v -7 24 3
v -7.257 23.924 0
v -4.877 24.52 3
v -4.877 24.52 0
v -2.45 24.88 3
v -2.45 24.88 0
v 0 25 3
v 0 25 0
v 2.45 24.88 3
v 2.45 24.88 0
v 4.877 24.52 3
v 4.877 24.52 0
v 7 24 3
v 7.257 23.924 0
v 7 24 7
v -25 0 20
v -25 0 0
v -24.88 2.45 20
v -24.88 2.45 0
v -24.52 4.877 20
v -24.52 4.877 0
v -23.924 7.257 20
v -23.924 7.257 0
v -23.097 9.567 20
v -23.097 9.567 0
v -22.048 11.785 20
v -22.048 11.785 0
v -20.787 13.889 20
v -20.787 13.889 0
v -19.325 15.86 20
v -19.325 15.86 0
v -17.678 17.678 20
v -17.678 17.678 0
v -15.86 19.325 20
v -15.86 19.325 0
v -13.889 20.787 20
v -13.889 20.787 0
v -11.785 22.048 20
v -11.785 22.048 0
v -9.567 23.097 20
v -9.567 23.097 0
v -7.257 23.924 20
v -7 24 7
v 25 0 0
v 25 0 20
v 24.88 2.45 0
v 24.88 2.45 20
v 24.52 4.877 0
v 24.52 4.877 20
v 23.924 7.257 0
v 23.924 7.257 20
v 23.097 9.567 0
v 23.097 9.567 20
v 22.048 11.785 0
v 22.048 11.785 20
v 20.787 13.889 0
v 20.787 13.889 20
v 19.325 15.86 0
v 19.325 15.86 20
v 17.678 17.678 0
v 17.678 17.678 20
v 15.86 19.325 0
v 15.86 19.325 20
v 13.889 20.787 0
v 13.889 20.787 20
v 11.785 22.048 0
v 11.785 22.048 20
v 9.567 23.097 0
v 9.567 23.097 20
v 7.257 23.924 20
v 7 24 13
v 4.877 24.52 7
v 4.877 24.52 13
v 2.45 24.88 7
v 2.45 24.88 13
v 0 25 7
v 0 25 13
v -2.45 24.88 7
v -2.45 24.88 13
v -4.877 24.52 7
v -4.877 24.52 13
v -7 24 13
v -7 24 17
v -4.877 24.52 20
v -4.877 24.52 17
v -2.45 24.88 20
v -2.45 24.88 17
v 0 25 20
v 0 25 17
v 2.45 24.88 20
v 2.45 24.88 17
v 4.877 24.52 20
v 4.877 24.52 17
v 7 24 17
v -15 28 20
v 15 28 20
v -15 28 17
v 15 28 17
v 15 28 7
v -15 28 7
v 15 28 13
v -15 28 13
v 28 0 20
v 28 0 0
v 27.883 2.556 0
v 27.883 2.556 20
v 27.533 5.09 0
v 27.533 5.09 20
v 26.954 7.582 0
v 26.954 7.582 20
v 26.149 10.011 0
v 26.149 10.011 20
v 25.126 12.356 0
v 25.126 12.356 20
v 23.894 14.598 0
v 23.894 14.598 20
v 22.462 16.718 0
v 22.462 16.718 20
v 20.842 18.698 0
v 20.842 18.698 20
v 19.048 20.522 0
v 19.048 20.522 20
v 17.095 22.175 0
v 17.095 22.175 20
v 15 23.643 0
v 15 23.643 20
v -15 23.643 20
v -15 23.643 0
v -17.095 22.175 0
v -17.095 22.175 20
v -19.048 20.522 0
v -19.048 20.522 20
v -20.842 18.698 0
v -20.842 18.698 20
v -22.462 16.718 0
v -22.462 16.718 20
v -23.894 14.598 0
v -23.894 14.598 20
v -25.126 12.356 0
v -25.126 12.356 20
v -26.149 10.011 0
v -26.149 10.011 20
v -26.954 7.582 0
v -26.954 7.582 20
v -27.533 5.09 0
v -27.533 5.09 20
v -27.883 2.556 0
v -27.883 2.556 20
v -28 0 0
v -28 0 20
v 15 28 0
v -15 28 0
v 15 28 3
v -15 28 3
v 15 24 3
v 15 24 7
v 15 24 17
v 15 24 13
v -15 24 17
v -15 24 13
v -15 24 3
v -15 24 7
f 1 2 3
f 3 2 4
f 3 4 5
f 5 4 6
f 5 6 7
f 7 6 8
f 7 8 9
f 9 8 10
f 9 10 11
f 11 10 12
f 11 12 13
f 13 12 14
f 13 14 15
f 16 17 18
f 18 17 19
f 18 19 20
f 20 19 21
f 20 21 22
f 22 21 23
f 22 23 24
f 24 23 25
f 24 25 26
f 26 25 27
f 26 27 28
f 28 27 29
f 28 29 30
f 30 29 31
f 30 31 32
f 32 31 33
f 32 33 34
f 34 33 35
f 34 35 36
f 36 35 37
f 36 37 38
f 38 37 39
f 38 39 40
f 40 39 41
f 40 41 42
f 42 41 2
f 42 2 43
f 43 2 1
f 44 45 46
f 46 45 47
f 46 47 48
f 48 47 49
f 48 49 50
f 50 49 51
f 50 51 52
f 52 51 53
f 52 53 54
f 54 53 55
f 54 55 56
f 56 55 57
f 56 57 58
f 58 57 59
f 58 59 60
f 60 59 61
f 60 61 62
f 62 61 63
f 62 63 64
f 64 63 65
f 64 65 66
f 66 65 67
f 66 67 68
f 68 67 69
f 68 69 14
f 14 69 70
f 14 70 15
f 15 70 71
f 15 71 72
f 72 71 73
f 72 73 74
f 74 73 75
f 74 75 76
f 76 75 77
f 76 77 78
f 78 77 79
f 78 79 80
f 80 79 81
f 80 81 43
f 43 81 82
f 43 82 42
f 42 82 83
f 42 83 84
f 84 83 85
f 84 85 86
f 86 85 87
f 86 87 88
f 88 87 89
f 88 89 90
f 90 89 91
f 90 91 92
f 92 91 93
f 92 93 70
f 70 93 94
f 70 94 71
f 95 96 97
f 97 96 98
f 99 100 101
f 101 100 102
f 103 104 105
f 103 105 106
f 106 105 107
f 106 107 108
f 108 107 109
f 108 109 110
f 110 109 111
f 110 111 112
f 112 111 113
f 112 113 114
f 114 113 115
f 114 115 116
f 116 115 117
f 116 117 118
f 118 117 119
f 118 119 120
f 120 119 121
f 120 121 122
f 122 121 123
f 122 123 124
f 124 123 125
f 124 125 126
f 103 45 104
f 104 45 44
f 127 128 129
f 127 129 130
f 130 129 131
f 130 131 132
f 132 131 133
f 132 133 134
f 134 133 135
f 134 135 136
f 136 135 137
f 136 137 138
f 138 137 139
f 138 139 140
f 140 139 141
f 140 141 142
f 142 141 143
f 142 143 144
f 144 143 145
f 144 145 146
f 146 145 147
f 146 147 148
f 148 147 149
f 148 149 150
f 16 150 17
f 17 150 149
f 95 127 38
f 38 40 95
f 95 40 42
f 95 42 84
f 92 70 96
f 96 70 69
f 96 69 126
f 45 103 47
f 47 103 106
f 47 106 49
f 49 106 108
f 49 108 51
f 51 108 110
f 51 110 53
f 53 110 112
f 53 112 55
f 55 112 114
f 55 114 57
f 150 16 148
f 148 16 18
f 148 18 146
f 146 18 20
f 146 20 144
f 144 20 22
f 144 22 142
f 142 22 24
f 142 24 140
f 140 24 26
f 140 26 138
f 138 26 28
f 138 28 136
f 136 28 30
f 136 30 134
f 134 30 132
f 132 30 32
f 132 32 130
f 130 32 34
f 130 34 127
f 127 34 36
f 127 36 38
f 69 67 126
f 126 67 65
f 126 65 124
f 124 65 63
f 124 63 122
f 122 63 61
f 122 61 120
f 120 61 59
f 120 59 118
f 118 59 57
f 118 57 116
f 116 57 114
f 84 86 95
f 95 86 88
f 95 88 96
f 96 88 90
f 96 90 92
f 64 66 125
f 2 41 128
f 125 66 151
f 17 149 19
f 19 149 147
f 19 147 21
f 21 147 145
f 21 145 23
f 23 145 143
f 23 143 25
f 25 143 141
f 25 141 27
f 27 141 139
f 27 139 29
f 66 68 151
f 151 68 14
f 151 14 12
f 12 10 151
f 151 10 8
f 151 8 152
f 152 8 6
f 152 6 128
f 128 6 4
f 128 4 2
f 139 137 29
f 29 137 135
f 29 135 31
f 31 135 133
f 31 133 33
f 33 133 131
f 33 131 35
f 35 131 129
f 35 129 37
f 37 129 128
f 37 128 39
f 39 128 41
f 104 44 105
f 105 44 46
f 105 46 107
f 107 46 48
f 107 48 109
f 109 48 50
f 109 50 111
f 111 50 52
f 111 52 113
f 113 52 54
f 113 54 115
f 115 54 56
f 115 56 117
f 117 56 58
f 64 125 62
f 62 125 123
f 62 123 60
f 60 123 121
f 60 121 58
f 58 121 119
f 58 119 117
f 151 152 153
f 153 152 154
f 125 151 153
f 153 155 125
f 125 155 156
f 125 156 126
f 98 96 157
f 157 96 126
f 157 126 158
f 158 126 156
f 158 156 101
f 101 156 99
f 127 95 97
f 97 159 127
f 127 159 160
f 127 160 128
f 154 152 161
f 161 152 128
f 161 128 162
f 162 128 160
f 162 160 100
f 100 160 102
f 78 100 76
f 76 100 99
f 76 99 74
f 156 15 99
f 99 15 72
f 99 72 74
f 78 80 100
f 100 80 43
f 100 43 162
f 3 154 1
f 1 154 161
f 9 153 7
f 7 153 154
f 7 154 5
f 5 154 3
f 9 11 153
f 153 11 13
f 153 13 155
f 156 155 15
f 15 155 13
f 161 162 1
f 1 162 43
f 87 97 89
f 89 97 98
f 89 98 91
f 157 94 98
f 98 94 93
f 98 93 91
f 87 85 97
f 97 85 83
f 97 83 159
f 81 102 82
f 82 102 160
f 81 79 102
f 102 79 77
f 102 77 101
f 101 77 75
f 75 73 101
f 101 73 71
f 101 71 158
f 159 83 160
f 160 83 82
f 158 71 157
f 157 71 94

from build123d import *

# Parameters (mm, degrees)
SALIENTE_EXTRUIR1_DEPTH = 20
SALIENTE_EXTRUIR2_DEPTH = 20
CROQUIS3_W              = 30
CROQUIS3_H              = 4
CORTAR_EXTRUIR1_DEPTH   = 4


with BuildPart() as part:
    # Croquis1 → Saliente-Extruir1 (new body)
    with BuildSketch(Plane.XY):
        with BuildLine():
            Line((-28, 0), (-25, 0))
            ThreePointArc((-25, 0), (0, 25), (25, 0))
            Line((25, 0), (28, 0))
            ThreePointArc((28, 0), (0, 28), (-28, 0))
        make_face()
    extrude(amount=SALIENTE_EXTRUIR1_DEPTH)

    # Croquis2 → Saliente-Extruir2 (add)
    with BuildSketch(Plane.XY.offset(20)):
        Polygon((0, 28), (15, 28), (15, 22.565689598), (0, 26.315842258), (-15, 21.969074402), (-15, 28), align=None)
    extrude(amount=-SALIENTE_EXTRUIR2_DEPTH)

    # Croquis3 → Cortar-Extruir1 (cut)
    with BuildSketch(Plane(origin=(0, 28, 0), x_dir=(1, 0, 0), z_dir=(0, 1, 0))):
        with Locations((0, -15)):
            Rectangle(CROQUIS3_W, CROQUIS3_H)
        with Locations((0, -5)):
            Rectangle(CROQUIS3_W, CROQUIS3_H)
    extrude(amount=-CORTAR_EXTRUIR1_DEPTH, mode=Mode.SUBTRACT)


solid = part.part
